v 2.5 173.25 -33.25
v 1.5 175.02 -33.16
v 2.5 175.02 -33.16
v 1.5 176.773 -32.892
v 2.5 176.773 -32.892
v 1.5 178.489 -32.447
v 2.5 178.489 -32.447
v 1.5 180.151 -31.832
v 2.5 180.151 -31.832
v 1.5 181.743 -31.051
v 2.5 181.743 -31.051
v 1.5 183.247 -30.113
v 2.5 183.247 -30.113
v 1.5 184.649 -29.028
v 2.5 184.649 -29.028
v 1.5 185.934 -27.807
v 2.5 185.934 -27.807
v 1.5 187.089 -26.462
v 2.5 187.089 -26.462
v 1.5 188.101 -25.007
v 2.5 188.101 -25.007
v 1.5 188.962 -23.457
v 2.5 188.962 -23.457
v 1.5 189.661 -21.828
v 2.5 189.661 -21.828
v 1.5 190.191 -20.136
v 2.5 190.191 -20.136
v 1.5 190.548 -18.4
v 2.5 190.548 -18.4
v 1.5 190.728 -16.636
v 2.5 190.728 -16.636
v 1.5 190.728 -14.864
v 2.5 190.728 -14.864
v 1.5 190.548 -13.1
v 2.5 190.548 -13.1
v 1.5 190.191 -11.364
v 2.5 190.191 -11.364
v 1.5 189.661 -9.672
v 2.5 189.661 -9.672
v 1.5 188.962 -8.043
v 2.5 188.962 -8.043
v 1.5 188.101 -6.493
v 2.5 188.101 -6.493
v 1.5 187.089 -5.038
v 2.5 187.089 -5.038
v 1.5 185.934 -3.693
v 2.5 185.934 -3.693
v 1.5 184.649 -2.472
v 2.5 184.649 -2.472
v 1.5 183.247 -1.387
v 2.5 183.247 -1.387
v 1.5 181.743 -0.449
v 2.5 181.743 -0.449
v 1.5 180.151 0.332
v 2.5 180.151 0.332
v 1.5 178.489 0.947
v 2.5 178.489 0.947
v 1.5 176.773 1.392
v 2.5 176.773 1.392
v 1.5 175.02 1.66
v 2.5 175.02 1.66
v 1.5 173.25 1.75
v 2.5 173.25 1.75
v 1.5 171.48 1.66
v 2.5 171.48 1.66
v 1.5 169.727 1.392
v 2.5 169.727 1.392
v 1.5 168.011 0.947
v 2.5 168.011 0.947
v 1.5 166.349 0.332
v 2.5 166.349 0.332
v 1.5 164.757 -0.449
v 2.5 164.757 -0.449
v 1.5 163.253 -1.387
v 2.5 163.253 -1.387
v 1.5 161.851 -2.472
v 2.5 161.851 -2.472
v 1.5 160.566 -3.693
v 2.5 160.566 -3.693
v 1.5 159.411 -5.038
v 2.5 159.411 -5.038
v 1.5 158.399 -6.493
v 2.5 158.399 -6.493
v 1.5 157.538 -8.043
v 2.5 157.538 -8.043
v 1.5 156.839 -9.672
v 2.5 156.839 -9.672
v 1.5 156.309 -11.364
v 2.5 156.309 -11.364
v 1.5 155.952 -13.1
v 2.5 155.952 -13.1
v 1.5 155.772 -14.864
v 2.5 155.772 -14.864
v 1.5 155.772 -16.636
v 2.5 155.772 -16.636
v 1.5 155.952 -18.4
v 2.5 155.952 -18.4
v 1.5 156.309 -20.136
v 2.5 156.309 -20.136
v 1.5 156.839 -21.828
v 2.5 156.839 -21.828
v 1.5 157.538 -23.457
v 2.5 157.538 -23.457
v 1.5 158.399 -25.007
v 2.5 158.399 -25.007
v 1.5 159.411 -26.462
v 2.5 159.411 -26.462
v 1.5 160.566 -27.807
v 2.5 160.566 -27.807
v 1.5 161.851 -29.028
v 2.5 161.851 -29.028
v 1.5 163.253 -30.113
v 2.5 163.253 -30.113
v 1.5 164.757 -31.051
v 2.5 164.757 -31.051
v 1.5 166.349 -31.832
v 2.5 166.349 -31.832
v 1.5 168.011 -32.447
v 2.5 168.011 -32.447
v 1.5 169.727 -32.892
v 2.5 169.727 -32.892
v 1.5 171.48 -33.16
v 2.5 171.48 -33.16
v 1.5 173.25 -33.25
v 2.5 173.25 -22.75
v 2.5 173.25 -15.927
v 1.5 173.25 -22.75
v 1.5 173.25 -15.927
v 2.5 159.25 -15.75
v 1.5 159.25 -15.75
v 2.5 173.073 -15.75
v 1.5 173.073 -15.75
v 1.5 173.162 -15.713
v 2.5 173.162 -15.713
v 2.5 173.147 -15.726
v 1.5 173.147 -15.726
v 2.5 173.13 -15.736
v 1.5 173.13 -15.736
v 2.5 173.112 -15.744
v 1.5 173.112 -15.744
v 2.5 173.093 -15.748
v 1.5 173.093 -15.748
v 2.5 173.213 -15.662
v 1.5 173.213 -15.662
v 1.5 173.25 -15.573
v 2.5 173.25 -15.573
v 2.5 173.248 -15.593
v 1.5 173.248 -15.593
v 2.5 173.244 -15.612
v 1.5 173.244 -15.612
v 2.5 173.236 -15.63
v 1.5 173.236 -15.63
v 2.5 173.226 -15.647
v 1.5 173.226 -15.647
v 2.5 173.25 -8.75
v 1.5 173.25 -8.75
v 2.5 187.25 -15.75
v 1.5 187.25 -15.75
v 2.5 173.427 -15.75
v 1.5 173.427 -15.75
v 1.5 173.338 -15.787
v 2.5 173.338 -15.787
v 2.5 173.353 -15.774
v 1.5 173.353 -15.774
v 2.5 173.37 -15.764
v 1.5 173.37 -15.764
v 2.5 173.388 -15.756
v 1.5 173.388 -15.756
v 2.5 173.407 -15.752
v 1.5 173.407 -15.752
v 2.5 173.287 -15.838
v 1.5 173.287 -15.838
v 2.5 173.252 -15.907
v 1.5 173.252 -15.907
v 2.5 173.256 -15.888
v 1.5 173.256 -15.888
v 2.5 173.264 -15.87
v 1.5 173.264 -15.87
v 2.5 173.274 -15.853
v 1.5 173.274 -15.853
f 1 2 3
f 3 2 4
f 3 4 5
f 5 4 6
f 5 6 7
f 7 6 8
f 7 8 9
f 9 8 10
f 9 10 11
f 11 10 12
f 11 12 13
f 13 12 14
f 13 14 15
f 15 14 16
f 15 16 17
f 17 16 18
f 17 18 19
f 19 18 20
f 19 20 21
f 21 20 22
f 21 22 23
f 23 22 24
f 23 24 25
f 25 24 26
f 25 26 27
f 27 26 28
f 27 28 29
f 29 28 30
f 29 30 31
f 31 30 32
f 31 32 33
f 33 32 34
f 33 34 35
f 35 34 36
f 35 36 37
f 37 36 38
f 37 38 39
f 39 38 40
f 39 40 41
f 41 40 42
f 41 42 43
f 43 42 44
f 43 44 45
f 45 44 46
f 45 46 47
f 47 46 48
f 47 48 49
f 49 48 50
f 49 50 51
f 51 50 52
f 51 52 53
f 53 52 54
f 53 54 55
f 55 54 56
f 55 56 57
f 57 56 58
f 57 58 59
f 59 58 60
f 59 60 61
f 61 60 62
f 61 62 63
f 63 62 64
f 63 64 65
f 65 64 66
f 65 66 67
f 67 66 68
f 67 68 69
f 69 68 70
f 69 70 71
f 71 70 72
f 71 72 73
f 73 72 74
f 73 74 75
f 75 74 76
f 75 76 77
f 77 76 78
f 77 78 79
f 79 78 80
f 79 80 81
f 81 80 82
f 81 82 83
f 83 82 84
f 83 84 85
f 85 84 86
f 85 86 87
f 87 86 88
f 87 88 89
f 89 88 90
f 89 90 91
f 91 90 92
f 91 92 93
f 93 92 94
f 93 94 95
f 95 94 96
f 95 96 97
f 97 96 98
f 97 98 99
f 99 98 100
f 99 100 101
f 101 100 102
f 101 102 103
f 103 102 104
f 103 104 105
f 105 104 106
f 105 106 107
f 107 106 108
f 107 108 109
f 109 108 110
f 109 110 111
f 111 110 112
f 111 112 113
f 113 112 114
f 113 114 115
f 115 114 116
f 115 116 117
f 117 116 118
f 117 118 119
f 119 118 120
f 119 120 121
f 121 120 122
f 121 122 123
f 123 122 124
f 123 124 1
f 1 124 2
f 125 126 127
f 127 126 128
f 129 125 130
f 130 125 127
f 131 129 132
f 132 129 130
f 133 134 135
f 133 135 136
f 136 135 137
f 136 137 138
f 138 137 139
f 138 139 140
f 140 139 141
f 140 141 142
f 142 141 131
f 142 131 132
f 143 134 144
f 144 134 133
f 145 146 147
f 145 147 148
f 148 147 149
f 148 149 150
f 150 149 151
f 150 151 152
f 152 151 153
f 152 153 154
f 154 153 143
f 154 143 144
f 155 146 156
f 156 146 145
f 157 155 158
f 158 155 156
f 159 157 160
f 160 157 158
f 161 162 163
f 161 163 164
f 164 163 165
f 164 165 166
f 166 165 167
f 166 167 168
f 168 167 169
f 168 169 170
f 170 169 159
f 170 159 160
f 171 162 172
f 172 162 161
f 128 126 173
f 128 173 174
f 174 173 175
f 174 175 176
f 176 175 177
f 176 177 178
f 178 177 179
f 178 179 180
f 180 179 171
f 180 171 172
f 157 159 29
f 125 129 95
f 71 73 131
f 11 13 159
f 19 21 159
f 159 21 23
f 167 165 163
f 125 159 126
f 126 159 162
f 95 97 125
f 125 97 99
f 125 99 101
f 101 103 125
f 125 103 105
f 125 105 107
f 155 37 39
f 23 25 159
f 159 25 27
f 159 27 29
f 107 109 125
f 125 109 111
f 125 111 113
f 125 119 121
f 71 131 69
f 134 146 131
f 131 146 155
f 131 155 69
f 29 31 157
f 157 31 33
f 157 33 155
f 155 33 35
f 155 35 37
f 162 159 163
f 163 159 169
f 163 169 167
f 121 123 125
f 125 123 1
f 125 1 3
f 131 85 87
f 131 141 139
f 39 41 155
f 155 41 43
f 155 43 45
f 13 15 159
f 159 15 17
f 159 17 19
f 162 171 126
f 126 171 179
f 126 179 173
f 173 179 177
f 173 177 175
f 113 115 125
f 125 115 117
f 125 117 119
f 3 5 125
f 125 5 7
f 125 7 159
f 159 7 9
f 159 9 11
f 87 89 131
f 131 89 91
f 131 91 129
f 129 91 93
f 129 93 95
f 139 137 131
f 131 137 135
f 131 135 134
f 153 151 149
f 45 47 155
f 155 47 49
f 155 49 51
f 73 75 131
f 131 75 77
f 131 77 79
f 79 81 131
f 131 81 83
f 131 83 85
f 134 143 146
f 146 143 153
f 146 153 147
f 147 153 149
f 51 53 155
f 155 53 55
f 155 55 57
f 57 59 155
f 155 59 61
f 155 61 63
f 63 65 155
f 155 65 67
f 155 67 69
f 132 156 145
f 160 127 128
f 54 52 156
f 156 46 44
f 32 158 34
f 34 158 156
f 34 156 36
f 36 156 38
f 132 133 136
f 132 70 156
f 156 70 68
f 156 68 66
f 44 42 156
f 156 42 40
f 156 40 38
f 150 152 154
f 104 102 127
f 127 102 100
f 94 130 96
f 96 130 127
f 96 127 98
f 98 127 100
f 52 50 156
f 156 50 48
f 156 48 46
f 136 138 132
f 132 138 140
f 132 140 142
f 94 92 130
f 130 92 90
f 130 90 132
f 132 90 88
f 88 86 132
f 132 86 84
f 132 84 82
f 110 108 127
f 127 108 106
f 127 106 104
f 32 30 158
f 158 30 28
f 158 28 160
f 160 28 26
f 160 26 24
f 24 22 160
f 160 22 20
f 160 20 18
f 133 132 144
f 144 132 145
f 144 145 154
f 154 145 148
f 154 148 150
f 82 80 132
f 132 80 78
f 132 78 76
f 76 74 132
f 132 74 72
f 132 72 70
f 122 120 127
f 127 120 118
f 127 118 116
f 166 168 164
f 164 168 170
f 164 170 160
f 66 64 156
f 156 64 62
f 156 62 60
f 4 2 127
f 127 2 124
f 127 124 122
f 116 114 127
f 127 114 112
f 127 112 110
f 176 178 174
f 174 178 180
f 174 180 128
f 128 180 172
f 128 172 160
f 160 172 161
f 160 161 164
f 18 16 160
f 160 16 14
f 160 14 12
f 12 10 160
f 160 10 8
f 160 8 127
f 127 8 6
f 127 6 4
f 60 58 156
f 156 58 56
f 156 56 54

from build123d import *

# Parameters (mm, degrees)
SKETCH1_W               = 85
SKETCH1_H               = 200
BOSS_EXTRUDE1_DEPTH     = 5
FILLET1_R               = 1
SKETCH2_R               = 17.5
CUT_EXTRUDE1_DEPTH      = 2.5
FILLET2_R               = 0.125
SKETCH3_W               = 15
SKETCH3_H               = 85
BOSS_EXTRUDE2_DEPTH     = 3
RIB1_START              = -5
RIB1_DEPTH              = 5
SKETCH5_R               = 1.5
CUT_EXTRUDE2_DEPTH      = 3
FILLET3_R               = 4
FILLET4_R               = 3
SKETCH6_OUTSIDE_W       = 130.646
SKETCH6_OUTSIDE_H       = 245.646
SKETCH6_OUTSIDE_R       = 17.5
CUT_EXTRUDE4_DEPTH      = 206.441597541
CUT_EXTRUDE5_DEPTH      = 194.642389471
CUT_EXTRUDE5_DEPTH_BACK = 194.642389471
CUT_EXTRUDE6_START      = -1.5
SKETCH9_R               = 17.5
CUT_EXTRUDE6_DEPTH      = 1.5


# Read off the part's stored shape, not the designer's step: Rib1
with BuildPart() as part:
    # Sketch1 → Boss-Extrude1 (new body)
    with BuildSketch(Plane(origin=(0, 0, 0), x_dir=(0, 0, -1), z_dir=(1, 0, 0))):
        with Locations((0, 100)):
            Rectangle(SKETCH1_W, SKETCH1_H)
        Polygon((-16, 25), (-16, 176), (-11, 176), (-11, 49), (-7, 49), (-7, 29), (-2.5, 29), (-2.5, 42), (16, 42), (16, 25), (16, 24), (15, 24), (-15, 24), (-16, 24), align=None, mode=Mode.SUBTRACT)
    extrude(amount=BOSS_EXTRUDE1_DEPTH)

    # Fillet1
    fillet1_edges = [part.edges().sort_by_distance(p)[0] for p in [
        (2.5, 42, 2.5),
        (2.5, 29, 2.5),
        (2.5, 29, 7),
        (2.5, 49, 11),
    ]]
    fillet(fillet1_edges, radius=FILLET1_R)

    # Sketch2 → Cut-Extrude1 (cut)
    with BuildSketch(Plane(origin=(5, 0, 0), x_dir=(0, 0, -1), z_dir=(1, 0, 0))):
        with Locations((15.75, 173.25)):
            Circle(SKETCH2_R)
        Polygon((15.75, 173.125), (15.625, 173.25), (8.75, 173.25), (15.75, 187.25), (15.75, 173.375), (15.875, 173.25), (22.75, 173.25), (15.75, 159.25), align=None, mode=Mode.SUBTRACT)
    extrude(amount=-CUT_EXTRUDE1_DEPTH, mode=Mode.SUBTRACT)

    # Fillet2
    fillet2_edges = [part.edges().sort_by_distance(p)[0] for p in [
        (3.75, 173.25, -15.625),
        (3.75, 173.125, -15.75),
        (3.75, 173.25, -15.875),
        (3.75, 173.375, -15.75),
    ]]
    fillet(fillet2_edges, radius=FILLET2_R)

    # Sketch3 → Boss-Extrude2 (add)
    with BuildSketch(Plane.XZ):
        with Locations((-7.5, 0)):
            Rectangle(SKETCH3_W, SKETCH3_H)
    extrude(amount=-BOSS_EXTRUDE2_DEPTH)

    # Rib1 outline → Rib1 (add)
    with BuildSketch(Plane.XY.offset(42.5).offset(RIB1_START)):
        Polygon((0, 18), (-15, 3), (0, 3), align=None)
    rib1 = extrude(amount=RIB1_DEPTH)

    # Mirror1: Rib1 across plane
    add(rib1.mirror(Plane.XY))

    # Sketch5 → Cut-Extrude2 (cut)
    with BuildSketch(Plane(origin=(0, 3, 0), x_dir=(1, 0, 0), z_dir=(0, 1, 0))):
        with Locations(Location((-7.5, 24.5, 0), (0, 0, 270))):
            Circle(SKETCH5_R)
        with Locations(Location((-7.5, 0, 0), (0, 0, 270))):
            Circle(SKETCH5_R)
        with Locations(Location((-7.5, -24.5, 0), (0, 0, 270))):
            Circle(SKETCH5_R)
    extrude(amount=-CUT_EXTRUDE2_DEPTH, mode=Mode.SUBTRACT)

    # Fillet3
    fillet3_edges = [part.edges().sort_by_distance(p)[0] for p in [
        (0, 18, 40),
        (0, 18, -40),
    ]]
    fillet(fillet3_edges, radius=FILLET3_R)

    # Fillet4
    fillet4_edges = [part.edges().sort_by_distance(p)[0] for p in [
        (0, 3, 0),
    ]]
    fillet(fillet4_edges, radius=FILLET4_R)

    # Sketch6 outside → Cut-Extrude4 (cut, through all)
    with BuildSketch(Plane(origin=(5, 0, 0), x_dir=(0, 0, -1), z_dir=(1, 0, 0))):
        with Locations((0, 100)):
            Rectangle(SKETCH6_OUTSIDE_W, SKETCH6_OUTSIDE_H)
        with Locations((15.75, 173.25)):
            Circle(SKETCH6_OUTSIDE_R, mode=Mode.SUBTRACT)
    extrude(amount=-CUT_EXTRUDE4_DEPTH, mode=Mode.SUBTRACT)

    # Sketch7 → Cut-Extrude5 (cut, two sides: drawn at the far end of the back side and taken through both)
    with BuildSketch(Plane(origin=(2.5, 0, 0), x_dir=(0, 0, -1), z_dir=(1, 0, 0)).offset(-CUT_EXTRUDE5_DEPTH_BACK)):
        with BuildLine():
            Line((22.75, 173.25), (15.75, 159.25))
            Line((15.75, 159.25), (15.75, 173.073223305))
            ThreePointArc((15.75, 173.073223305), (15.740484942, 173.121058734), (15.713388348, 173.161611652))
            Line((15.713388348, 173.161611652), (15.661611652, 173.213388348))
            ThreePointArc((15.661611652, 173.213388348), (15.621058734, 173.240484942), (15.573223305, 173.25))
            Line((15.573223305, 173.25), (8.75, 173.25))
            Line((8.75, 173.25), (15.75, 187.25))
            Line((15.75, 187.25), (15.75, 173.426776695))
            ThreePointArc((15.75, 173.426776695), (15.759515058, 173.378941266), (15.786611652, 173.338388348))
            Line((15.786611652, 173.338388348), (15.838388348, 173.286611652))
            ThreePointArc((15.838388348, 173.286611652), (15.878941266, 173.259515058), (15.926776695, 173.25))
            Line((15.926776695, 173.25), (22.75, 173.25))
        make_face()
    extrude(amount=CUT_EXTRUDE5_DEPTH + CUT_EXTRUDE5_DEPTH_BACK, mode=Mode.SUBTRACT)

    # Sketch9 → Cut-Extrude6 (cut)
    with BuildSketch(Plane.ZY.offset(CUT_EXTRUDE6_START)):
        with Locations(Location((-15.75, 173.25, 0), (0, 0, 180))):
            Circle(SKETCH9_R)
    extrude(amount=CUT_EXTRUDE6_DEPTH, mode=Mode.SUBTRACT)


solid = part.part
